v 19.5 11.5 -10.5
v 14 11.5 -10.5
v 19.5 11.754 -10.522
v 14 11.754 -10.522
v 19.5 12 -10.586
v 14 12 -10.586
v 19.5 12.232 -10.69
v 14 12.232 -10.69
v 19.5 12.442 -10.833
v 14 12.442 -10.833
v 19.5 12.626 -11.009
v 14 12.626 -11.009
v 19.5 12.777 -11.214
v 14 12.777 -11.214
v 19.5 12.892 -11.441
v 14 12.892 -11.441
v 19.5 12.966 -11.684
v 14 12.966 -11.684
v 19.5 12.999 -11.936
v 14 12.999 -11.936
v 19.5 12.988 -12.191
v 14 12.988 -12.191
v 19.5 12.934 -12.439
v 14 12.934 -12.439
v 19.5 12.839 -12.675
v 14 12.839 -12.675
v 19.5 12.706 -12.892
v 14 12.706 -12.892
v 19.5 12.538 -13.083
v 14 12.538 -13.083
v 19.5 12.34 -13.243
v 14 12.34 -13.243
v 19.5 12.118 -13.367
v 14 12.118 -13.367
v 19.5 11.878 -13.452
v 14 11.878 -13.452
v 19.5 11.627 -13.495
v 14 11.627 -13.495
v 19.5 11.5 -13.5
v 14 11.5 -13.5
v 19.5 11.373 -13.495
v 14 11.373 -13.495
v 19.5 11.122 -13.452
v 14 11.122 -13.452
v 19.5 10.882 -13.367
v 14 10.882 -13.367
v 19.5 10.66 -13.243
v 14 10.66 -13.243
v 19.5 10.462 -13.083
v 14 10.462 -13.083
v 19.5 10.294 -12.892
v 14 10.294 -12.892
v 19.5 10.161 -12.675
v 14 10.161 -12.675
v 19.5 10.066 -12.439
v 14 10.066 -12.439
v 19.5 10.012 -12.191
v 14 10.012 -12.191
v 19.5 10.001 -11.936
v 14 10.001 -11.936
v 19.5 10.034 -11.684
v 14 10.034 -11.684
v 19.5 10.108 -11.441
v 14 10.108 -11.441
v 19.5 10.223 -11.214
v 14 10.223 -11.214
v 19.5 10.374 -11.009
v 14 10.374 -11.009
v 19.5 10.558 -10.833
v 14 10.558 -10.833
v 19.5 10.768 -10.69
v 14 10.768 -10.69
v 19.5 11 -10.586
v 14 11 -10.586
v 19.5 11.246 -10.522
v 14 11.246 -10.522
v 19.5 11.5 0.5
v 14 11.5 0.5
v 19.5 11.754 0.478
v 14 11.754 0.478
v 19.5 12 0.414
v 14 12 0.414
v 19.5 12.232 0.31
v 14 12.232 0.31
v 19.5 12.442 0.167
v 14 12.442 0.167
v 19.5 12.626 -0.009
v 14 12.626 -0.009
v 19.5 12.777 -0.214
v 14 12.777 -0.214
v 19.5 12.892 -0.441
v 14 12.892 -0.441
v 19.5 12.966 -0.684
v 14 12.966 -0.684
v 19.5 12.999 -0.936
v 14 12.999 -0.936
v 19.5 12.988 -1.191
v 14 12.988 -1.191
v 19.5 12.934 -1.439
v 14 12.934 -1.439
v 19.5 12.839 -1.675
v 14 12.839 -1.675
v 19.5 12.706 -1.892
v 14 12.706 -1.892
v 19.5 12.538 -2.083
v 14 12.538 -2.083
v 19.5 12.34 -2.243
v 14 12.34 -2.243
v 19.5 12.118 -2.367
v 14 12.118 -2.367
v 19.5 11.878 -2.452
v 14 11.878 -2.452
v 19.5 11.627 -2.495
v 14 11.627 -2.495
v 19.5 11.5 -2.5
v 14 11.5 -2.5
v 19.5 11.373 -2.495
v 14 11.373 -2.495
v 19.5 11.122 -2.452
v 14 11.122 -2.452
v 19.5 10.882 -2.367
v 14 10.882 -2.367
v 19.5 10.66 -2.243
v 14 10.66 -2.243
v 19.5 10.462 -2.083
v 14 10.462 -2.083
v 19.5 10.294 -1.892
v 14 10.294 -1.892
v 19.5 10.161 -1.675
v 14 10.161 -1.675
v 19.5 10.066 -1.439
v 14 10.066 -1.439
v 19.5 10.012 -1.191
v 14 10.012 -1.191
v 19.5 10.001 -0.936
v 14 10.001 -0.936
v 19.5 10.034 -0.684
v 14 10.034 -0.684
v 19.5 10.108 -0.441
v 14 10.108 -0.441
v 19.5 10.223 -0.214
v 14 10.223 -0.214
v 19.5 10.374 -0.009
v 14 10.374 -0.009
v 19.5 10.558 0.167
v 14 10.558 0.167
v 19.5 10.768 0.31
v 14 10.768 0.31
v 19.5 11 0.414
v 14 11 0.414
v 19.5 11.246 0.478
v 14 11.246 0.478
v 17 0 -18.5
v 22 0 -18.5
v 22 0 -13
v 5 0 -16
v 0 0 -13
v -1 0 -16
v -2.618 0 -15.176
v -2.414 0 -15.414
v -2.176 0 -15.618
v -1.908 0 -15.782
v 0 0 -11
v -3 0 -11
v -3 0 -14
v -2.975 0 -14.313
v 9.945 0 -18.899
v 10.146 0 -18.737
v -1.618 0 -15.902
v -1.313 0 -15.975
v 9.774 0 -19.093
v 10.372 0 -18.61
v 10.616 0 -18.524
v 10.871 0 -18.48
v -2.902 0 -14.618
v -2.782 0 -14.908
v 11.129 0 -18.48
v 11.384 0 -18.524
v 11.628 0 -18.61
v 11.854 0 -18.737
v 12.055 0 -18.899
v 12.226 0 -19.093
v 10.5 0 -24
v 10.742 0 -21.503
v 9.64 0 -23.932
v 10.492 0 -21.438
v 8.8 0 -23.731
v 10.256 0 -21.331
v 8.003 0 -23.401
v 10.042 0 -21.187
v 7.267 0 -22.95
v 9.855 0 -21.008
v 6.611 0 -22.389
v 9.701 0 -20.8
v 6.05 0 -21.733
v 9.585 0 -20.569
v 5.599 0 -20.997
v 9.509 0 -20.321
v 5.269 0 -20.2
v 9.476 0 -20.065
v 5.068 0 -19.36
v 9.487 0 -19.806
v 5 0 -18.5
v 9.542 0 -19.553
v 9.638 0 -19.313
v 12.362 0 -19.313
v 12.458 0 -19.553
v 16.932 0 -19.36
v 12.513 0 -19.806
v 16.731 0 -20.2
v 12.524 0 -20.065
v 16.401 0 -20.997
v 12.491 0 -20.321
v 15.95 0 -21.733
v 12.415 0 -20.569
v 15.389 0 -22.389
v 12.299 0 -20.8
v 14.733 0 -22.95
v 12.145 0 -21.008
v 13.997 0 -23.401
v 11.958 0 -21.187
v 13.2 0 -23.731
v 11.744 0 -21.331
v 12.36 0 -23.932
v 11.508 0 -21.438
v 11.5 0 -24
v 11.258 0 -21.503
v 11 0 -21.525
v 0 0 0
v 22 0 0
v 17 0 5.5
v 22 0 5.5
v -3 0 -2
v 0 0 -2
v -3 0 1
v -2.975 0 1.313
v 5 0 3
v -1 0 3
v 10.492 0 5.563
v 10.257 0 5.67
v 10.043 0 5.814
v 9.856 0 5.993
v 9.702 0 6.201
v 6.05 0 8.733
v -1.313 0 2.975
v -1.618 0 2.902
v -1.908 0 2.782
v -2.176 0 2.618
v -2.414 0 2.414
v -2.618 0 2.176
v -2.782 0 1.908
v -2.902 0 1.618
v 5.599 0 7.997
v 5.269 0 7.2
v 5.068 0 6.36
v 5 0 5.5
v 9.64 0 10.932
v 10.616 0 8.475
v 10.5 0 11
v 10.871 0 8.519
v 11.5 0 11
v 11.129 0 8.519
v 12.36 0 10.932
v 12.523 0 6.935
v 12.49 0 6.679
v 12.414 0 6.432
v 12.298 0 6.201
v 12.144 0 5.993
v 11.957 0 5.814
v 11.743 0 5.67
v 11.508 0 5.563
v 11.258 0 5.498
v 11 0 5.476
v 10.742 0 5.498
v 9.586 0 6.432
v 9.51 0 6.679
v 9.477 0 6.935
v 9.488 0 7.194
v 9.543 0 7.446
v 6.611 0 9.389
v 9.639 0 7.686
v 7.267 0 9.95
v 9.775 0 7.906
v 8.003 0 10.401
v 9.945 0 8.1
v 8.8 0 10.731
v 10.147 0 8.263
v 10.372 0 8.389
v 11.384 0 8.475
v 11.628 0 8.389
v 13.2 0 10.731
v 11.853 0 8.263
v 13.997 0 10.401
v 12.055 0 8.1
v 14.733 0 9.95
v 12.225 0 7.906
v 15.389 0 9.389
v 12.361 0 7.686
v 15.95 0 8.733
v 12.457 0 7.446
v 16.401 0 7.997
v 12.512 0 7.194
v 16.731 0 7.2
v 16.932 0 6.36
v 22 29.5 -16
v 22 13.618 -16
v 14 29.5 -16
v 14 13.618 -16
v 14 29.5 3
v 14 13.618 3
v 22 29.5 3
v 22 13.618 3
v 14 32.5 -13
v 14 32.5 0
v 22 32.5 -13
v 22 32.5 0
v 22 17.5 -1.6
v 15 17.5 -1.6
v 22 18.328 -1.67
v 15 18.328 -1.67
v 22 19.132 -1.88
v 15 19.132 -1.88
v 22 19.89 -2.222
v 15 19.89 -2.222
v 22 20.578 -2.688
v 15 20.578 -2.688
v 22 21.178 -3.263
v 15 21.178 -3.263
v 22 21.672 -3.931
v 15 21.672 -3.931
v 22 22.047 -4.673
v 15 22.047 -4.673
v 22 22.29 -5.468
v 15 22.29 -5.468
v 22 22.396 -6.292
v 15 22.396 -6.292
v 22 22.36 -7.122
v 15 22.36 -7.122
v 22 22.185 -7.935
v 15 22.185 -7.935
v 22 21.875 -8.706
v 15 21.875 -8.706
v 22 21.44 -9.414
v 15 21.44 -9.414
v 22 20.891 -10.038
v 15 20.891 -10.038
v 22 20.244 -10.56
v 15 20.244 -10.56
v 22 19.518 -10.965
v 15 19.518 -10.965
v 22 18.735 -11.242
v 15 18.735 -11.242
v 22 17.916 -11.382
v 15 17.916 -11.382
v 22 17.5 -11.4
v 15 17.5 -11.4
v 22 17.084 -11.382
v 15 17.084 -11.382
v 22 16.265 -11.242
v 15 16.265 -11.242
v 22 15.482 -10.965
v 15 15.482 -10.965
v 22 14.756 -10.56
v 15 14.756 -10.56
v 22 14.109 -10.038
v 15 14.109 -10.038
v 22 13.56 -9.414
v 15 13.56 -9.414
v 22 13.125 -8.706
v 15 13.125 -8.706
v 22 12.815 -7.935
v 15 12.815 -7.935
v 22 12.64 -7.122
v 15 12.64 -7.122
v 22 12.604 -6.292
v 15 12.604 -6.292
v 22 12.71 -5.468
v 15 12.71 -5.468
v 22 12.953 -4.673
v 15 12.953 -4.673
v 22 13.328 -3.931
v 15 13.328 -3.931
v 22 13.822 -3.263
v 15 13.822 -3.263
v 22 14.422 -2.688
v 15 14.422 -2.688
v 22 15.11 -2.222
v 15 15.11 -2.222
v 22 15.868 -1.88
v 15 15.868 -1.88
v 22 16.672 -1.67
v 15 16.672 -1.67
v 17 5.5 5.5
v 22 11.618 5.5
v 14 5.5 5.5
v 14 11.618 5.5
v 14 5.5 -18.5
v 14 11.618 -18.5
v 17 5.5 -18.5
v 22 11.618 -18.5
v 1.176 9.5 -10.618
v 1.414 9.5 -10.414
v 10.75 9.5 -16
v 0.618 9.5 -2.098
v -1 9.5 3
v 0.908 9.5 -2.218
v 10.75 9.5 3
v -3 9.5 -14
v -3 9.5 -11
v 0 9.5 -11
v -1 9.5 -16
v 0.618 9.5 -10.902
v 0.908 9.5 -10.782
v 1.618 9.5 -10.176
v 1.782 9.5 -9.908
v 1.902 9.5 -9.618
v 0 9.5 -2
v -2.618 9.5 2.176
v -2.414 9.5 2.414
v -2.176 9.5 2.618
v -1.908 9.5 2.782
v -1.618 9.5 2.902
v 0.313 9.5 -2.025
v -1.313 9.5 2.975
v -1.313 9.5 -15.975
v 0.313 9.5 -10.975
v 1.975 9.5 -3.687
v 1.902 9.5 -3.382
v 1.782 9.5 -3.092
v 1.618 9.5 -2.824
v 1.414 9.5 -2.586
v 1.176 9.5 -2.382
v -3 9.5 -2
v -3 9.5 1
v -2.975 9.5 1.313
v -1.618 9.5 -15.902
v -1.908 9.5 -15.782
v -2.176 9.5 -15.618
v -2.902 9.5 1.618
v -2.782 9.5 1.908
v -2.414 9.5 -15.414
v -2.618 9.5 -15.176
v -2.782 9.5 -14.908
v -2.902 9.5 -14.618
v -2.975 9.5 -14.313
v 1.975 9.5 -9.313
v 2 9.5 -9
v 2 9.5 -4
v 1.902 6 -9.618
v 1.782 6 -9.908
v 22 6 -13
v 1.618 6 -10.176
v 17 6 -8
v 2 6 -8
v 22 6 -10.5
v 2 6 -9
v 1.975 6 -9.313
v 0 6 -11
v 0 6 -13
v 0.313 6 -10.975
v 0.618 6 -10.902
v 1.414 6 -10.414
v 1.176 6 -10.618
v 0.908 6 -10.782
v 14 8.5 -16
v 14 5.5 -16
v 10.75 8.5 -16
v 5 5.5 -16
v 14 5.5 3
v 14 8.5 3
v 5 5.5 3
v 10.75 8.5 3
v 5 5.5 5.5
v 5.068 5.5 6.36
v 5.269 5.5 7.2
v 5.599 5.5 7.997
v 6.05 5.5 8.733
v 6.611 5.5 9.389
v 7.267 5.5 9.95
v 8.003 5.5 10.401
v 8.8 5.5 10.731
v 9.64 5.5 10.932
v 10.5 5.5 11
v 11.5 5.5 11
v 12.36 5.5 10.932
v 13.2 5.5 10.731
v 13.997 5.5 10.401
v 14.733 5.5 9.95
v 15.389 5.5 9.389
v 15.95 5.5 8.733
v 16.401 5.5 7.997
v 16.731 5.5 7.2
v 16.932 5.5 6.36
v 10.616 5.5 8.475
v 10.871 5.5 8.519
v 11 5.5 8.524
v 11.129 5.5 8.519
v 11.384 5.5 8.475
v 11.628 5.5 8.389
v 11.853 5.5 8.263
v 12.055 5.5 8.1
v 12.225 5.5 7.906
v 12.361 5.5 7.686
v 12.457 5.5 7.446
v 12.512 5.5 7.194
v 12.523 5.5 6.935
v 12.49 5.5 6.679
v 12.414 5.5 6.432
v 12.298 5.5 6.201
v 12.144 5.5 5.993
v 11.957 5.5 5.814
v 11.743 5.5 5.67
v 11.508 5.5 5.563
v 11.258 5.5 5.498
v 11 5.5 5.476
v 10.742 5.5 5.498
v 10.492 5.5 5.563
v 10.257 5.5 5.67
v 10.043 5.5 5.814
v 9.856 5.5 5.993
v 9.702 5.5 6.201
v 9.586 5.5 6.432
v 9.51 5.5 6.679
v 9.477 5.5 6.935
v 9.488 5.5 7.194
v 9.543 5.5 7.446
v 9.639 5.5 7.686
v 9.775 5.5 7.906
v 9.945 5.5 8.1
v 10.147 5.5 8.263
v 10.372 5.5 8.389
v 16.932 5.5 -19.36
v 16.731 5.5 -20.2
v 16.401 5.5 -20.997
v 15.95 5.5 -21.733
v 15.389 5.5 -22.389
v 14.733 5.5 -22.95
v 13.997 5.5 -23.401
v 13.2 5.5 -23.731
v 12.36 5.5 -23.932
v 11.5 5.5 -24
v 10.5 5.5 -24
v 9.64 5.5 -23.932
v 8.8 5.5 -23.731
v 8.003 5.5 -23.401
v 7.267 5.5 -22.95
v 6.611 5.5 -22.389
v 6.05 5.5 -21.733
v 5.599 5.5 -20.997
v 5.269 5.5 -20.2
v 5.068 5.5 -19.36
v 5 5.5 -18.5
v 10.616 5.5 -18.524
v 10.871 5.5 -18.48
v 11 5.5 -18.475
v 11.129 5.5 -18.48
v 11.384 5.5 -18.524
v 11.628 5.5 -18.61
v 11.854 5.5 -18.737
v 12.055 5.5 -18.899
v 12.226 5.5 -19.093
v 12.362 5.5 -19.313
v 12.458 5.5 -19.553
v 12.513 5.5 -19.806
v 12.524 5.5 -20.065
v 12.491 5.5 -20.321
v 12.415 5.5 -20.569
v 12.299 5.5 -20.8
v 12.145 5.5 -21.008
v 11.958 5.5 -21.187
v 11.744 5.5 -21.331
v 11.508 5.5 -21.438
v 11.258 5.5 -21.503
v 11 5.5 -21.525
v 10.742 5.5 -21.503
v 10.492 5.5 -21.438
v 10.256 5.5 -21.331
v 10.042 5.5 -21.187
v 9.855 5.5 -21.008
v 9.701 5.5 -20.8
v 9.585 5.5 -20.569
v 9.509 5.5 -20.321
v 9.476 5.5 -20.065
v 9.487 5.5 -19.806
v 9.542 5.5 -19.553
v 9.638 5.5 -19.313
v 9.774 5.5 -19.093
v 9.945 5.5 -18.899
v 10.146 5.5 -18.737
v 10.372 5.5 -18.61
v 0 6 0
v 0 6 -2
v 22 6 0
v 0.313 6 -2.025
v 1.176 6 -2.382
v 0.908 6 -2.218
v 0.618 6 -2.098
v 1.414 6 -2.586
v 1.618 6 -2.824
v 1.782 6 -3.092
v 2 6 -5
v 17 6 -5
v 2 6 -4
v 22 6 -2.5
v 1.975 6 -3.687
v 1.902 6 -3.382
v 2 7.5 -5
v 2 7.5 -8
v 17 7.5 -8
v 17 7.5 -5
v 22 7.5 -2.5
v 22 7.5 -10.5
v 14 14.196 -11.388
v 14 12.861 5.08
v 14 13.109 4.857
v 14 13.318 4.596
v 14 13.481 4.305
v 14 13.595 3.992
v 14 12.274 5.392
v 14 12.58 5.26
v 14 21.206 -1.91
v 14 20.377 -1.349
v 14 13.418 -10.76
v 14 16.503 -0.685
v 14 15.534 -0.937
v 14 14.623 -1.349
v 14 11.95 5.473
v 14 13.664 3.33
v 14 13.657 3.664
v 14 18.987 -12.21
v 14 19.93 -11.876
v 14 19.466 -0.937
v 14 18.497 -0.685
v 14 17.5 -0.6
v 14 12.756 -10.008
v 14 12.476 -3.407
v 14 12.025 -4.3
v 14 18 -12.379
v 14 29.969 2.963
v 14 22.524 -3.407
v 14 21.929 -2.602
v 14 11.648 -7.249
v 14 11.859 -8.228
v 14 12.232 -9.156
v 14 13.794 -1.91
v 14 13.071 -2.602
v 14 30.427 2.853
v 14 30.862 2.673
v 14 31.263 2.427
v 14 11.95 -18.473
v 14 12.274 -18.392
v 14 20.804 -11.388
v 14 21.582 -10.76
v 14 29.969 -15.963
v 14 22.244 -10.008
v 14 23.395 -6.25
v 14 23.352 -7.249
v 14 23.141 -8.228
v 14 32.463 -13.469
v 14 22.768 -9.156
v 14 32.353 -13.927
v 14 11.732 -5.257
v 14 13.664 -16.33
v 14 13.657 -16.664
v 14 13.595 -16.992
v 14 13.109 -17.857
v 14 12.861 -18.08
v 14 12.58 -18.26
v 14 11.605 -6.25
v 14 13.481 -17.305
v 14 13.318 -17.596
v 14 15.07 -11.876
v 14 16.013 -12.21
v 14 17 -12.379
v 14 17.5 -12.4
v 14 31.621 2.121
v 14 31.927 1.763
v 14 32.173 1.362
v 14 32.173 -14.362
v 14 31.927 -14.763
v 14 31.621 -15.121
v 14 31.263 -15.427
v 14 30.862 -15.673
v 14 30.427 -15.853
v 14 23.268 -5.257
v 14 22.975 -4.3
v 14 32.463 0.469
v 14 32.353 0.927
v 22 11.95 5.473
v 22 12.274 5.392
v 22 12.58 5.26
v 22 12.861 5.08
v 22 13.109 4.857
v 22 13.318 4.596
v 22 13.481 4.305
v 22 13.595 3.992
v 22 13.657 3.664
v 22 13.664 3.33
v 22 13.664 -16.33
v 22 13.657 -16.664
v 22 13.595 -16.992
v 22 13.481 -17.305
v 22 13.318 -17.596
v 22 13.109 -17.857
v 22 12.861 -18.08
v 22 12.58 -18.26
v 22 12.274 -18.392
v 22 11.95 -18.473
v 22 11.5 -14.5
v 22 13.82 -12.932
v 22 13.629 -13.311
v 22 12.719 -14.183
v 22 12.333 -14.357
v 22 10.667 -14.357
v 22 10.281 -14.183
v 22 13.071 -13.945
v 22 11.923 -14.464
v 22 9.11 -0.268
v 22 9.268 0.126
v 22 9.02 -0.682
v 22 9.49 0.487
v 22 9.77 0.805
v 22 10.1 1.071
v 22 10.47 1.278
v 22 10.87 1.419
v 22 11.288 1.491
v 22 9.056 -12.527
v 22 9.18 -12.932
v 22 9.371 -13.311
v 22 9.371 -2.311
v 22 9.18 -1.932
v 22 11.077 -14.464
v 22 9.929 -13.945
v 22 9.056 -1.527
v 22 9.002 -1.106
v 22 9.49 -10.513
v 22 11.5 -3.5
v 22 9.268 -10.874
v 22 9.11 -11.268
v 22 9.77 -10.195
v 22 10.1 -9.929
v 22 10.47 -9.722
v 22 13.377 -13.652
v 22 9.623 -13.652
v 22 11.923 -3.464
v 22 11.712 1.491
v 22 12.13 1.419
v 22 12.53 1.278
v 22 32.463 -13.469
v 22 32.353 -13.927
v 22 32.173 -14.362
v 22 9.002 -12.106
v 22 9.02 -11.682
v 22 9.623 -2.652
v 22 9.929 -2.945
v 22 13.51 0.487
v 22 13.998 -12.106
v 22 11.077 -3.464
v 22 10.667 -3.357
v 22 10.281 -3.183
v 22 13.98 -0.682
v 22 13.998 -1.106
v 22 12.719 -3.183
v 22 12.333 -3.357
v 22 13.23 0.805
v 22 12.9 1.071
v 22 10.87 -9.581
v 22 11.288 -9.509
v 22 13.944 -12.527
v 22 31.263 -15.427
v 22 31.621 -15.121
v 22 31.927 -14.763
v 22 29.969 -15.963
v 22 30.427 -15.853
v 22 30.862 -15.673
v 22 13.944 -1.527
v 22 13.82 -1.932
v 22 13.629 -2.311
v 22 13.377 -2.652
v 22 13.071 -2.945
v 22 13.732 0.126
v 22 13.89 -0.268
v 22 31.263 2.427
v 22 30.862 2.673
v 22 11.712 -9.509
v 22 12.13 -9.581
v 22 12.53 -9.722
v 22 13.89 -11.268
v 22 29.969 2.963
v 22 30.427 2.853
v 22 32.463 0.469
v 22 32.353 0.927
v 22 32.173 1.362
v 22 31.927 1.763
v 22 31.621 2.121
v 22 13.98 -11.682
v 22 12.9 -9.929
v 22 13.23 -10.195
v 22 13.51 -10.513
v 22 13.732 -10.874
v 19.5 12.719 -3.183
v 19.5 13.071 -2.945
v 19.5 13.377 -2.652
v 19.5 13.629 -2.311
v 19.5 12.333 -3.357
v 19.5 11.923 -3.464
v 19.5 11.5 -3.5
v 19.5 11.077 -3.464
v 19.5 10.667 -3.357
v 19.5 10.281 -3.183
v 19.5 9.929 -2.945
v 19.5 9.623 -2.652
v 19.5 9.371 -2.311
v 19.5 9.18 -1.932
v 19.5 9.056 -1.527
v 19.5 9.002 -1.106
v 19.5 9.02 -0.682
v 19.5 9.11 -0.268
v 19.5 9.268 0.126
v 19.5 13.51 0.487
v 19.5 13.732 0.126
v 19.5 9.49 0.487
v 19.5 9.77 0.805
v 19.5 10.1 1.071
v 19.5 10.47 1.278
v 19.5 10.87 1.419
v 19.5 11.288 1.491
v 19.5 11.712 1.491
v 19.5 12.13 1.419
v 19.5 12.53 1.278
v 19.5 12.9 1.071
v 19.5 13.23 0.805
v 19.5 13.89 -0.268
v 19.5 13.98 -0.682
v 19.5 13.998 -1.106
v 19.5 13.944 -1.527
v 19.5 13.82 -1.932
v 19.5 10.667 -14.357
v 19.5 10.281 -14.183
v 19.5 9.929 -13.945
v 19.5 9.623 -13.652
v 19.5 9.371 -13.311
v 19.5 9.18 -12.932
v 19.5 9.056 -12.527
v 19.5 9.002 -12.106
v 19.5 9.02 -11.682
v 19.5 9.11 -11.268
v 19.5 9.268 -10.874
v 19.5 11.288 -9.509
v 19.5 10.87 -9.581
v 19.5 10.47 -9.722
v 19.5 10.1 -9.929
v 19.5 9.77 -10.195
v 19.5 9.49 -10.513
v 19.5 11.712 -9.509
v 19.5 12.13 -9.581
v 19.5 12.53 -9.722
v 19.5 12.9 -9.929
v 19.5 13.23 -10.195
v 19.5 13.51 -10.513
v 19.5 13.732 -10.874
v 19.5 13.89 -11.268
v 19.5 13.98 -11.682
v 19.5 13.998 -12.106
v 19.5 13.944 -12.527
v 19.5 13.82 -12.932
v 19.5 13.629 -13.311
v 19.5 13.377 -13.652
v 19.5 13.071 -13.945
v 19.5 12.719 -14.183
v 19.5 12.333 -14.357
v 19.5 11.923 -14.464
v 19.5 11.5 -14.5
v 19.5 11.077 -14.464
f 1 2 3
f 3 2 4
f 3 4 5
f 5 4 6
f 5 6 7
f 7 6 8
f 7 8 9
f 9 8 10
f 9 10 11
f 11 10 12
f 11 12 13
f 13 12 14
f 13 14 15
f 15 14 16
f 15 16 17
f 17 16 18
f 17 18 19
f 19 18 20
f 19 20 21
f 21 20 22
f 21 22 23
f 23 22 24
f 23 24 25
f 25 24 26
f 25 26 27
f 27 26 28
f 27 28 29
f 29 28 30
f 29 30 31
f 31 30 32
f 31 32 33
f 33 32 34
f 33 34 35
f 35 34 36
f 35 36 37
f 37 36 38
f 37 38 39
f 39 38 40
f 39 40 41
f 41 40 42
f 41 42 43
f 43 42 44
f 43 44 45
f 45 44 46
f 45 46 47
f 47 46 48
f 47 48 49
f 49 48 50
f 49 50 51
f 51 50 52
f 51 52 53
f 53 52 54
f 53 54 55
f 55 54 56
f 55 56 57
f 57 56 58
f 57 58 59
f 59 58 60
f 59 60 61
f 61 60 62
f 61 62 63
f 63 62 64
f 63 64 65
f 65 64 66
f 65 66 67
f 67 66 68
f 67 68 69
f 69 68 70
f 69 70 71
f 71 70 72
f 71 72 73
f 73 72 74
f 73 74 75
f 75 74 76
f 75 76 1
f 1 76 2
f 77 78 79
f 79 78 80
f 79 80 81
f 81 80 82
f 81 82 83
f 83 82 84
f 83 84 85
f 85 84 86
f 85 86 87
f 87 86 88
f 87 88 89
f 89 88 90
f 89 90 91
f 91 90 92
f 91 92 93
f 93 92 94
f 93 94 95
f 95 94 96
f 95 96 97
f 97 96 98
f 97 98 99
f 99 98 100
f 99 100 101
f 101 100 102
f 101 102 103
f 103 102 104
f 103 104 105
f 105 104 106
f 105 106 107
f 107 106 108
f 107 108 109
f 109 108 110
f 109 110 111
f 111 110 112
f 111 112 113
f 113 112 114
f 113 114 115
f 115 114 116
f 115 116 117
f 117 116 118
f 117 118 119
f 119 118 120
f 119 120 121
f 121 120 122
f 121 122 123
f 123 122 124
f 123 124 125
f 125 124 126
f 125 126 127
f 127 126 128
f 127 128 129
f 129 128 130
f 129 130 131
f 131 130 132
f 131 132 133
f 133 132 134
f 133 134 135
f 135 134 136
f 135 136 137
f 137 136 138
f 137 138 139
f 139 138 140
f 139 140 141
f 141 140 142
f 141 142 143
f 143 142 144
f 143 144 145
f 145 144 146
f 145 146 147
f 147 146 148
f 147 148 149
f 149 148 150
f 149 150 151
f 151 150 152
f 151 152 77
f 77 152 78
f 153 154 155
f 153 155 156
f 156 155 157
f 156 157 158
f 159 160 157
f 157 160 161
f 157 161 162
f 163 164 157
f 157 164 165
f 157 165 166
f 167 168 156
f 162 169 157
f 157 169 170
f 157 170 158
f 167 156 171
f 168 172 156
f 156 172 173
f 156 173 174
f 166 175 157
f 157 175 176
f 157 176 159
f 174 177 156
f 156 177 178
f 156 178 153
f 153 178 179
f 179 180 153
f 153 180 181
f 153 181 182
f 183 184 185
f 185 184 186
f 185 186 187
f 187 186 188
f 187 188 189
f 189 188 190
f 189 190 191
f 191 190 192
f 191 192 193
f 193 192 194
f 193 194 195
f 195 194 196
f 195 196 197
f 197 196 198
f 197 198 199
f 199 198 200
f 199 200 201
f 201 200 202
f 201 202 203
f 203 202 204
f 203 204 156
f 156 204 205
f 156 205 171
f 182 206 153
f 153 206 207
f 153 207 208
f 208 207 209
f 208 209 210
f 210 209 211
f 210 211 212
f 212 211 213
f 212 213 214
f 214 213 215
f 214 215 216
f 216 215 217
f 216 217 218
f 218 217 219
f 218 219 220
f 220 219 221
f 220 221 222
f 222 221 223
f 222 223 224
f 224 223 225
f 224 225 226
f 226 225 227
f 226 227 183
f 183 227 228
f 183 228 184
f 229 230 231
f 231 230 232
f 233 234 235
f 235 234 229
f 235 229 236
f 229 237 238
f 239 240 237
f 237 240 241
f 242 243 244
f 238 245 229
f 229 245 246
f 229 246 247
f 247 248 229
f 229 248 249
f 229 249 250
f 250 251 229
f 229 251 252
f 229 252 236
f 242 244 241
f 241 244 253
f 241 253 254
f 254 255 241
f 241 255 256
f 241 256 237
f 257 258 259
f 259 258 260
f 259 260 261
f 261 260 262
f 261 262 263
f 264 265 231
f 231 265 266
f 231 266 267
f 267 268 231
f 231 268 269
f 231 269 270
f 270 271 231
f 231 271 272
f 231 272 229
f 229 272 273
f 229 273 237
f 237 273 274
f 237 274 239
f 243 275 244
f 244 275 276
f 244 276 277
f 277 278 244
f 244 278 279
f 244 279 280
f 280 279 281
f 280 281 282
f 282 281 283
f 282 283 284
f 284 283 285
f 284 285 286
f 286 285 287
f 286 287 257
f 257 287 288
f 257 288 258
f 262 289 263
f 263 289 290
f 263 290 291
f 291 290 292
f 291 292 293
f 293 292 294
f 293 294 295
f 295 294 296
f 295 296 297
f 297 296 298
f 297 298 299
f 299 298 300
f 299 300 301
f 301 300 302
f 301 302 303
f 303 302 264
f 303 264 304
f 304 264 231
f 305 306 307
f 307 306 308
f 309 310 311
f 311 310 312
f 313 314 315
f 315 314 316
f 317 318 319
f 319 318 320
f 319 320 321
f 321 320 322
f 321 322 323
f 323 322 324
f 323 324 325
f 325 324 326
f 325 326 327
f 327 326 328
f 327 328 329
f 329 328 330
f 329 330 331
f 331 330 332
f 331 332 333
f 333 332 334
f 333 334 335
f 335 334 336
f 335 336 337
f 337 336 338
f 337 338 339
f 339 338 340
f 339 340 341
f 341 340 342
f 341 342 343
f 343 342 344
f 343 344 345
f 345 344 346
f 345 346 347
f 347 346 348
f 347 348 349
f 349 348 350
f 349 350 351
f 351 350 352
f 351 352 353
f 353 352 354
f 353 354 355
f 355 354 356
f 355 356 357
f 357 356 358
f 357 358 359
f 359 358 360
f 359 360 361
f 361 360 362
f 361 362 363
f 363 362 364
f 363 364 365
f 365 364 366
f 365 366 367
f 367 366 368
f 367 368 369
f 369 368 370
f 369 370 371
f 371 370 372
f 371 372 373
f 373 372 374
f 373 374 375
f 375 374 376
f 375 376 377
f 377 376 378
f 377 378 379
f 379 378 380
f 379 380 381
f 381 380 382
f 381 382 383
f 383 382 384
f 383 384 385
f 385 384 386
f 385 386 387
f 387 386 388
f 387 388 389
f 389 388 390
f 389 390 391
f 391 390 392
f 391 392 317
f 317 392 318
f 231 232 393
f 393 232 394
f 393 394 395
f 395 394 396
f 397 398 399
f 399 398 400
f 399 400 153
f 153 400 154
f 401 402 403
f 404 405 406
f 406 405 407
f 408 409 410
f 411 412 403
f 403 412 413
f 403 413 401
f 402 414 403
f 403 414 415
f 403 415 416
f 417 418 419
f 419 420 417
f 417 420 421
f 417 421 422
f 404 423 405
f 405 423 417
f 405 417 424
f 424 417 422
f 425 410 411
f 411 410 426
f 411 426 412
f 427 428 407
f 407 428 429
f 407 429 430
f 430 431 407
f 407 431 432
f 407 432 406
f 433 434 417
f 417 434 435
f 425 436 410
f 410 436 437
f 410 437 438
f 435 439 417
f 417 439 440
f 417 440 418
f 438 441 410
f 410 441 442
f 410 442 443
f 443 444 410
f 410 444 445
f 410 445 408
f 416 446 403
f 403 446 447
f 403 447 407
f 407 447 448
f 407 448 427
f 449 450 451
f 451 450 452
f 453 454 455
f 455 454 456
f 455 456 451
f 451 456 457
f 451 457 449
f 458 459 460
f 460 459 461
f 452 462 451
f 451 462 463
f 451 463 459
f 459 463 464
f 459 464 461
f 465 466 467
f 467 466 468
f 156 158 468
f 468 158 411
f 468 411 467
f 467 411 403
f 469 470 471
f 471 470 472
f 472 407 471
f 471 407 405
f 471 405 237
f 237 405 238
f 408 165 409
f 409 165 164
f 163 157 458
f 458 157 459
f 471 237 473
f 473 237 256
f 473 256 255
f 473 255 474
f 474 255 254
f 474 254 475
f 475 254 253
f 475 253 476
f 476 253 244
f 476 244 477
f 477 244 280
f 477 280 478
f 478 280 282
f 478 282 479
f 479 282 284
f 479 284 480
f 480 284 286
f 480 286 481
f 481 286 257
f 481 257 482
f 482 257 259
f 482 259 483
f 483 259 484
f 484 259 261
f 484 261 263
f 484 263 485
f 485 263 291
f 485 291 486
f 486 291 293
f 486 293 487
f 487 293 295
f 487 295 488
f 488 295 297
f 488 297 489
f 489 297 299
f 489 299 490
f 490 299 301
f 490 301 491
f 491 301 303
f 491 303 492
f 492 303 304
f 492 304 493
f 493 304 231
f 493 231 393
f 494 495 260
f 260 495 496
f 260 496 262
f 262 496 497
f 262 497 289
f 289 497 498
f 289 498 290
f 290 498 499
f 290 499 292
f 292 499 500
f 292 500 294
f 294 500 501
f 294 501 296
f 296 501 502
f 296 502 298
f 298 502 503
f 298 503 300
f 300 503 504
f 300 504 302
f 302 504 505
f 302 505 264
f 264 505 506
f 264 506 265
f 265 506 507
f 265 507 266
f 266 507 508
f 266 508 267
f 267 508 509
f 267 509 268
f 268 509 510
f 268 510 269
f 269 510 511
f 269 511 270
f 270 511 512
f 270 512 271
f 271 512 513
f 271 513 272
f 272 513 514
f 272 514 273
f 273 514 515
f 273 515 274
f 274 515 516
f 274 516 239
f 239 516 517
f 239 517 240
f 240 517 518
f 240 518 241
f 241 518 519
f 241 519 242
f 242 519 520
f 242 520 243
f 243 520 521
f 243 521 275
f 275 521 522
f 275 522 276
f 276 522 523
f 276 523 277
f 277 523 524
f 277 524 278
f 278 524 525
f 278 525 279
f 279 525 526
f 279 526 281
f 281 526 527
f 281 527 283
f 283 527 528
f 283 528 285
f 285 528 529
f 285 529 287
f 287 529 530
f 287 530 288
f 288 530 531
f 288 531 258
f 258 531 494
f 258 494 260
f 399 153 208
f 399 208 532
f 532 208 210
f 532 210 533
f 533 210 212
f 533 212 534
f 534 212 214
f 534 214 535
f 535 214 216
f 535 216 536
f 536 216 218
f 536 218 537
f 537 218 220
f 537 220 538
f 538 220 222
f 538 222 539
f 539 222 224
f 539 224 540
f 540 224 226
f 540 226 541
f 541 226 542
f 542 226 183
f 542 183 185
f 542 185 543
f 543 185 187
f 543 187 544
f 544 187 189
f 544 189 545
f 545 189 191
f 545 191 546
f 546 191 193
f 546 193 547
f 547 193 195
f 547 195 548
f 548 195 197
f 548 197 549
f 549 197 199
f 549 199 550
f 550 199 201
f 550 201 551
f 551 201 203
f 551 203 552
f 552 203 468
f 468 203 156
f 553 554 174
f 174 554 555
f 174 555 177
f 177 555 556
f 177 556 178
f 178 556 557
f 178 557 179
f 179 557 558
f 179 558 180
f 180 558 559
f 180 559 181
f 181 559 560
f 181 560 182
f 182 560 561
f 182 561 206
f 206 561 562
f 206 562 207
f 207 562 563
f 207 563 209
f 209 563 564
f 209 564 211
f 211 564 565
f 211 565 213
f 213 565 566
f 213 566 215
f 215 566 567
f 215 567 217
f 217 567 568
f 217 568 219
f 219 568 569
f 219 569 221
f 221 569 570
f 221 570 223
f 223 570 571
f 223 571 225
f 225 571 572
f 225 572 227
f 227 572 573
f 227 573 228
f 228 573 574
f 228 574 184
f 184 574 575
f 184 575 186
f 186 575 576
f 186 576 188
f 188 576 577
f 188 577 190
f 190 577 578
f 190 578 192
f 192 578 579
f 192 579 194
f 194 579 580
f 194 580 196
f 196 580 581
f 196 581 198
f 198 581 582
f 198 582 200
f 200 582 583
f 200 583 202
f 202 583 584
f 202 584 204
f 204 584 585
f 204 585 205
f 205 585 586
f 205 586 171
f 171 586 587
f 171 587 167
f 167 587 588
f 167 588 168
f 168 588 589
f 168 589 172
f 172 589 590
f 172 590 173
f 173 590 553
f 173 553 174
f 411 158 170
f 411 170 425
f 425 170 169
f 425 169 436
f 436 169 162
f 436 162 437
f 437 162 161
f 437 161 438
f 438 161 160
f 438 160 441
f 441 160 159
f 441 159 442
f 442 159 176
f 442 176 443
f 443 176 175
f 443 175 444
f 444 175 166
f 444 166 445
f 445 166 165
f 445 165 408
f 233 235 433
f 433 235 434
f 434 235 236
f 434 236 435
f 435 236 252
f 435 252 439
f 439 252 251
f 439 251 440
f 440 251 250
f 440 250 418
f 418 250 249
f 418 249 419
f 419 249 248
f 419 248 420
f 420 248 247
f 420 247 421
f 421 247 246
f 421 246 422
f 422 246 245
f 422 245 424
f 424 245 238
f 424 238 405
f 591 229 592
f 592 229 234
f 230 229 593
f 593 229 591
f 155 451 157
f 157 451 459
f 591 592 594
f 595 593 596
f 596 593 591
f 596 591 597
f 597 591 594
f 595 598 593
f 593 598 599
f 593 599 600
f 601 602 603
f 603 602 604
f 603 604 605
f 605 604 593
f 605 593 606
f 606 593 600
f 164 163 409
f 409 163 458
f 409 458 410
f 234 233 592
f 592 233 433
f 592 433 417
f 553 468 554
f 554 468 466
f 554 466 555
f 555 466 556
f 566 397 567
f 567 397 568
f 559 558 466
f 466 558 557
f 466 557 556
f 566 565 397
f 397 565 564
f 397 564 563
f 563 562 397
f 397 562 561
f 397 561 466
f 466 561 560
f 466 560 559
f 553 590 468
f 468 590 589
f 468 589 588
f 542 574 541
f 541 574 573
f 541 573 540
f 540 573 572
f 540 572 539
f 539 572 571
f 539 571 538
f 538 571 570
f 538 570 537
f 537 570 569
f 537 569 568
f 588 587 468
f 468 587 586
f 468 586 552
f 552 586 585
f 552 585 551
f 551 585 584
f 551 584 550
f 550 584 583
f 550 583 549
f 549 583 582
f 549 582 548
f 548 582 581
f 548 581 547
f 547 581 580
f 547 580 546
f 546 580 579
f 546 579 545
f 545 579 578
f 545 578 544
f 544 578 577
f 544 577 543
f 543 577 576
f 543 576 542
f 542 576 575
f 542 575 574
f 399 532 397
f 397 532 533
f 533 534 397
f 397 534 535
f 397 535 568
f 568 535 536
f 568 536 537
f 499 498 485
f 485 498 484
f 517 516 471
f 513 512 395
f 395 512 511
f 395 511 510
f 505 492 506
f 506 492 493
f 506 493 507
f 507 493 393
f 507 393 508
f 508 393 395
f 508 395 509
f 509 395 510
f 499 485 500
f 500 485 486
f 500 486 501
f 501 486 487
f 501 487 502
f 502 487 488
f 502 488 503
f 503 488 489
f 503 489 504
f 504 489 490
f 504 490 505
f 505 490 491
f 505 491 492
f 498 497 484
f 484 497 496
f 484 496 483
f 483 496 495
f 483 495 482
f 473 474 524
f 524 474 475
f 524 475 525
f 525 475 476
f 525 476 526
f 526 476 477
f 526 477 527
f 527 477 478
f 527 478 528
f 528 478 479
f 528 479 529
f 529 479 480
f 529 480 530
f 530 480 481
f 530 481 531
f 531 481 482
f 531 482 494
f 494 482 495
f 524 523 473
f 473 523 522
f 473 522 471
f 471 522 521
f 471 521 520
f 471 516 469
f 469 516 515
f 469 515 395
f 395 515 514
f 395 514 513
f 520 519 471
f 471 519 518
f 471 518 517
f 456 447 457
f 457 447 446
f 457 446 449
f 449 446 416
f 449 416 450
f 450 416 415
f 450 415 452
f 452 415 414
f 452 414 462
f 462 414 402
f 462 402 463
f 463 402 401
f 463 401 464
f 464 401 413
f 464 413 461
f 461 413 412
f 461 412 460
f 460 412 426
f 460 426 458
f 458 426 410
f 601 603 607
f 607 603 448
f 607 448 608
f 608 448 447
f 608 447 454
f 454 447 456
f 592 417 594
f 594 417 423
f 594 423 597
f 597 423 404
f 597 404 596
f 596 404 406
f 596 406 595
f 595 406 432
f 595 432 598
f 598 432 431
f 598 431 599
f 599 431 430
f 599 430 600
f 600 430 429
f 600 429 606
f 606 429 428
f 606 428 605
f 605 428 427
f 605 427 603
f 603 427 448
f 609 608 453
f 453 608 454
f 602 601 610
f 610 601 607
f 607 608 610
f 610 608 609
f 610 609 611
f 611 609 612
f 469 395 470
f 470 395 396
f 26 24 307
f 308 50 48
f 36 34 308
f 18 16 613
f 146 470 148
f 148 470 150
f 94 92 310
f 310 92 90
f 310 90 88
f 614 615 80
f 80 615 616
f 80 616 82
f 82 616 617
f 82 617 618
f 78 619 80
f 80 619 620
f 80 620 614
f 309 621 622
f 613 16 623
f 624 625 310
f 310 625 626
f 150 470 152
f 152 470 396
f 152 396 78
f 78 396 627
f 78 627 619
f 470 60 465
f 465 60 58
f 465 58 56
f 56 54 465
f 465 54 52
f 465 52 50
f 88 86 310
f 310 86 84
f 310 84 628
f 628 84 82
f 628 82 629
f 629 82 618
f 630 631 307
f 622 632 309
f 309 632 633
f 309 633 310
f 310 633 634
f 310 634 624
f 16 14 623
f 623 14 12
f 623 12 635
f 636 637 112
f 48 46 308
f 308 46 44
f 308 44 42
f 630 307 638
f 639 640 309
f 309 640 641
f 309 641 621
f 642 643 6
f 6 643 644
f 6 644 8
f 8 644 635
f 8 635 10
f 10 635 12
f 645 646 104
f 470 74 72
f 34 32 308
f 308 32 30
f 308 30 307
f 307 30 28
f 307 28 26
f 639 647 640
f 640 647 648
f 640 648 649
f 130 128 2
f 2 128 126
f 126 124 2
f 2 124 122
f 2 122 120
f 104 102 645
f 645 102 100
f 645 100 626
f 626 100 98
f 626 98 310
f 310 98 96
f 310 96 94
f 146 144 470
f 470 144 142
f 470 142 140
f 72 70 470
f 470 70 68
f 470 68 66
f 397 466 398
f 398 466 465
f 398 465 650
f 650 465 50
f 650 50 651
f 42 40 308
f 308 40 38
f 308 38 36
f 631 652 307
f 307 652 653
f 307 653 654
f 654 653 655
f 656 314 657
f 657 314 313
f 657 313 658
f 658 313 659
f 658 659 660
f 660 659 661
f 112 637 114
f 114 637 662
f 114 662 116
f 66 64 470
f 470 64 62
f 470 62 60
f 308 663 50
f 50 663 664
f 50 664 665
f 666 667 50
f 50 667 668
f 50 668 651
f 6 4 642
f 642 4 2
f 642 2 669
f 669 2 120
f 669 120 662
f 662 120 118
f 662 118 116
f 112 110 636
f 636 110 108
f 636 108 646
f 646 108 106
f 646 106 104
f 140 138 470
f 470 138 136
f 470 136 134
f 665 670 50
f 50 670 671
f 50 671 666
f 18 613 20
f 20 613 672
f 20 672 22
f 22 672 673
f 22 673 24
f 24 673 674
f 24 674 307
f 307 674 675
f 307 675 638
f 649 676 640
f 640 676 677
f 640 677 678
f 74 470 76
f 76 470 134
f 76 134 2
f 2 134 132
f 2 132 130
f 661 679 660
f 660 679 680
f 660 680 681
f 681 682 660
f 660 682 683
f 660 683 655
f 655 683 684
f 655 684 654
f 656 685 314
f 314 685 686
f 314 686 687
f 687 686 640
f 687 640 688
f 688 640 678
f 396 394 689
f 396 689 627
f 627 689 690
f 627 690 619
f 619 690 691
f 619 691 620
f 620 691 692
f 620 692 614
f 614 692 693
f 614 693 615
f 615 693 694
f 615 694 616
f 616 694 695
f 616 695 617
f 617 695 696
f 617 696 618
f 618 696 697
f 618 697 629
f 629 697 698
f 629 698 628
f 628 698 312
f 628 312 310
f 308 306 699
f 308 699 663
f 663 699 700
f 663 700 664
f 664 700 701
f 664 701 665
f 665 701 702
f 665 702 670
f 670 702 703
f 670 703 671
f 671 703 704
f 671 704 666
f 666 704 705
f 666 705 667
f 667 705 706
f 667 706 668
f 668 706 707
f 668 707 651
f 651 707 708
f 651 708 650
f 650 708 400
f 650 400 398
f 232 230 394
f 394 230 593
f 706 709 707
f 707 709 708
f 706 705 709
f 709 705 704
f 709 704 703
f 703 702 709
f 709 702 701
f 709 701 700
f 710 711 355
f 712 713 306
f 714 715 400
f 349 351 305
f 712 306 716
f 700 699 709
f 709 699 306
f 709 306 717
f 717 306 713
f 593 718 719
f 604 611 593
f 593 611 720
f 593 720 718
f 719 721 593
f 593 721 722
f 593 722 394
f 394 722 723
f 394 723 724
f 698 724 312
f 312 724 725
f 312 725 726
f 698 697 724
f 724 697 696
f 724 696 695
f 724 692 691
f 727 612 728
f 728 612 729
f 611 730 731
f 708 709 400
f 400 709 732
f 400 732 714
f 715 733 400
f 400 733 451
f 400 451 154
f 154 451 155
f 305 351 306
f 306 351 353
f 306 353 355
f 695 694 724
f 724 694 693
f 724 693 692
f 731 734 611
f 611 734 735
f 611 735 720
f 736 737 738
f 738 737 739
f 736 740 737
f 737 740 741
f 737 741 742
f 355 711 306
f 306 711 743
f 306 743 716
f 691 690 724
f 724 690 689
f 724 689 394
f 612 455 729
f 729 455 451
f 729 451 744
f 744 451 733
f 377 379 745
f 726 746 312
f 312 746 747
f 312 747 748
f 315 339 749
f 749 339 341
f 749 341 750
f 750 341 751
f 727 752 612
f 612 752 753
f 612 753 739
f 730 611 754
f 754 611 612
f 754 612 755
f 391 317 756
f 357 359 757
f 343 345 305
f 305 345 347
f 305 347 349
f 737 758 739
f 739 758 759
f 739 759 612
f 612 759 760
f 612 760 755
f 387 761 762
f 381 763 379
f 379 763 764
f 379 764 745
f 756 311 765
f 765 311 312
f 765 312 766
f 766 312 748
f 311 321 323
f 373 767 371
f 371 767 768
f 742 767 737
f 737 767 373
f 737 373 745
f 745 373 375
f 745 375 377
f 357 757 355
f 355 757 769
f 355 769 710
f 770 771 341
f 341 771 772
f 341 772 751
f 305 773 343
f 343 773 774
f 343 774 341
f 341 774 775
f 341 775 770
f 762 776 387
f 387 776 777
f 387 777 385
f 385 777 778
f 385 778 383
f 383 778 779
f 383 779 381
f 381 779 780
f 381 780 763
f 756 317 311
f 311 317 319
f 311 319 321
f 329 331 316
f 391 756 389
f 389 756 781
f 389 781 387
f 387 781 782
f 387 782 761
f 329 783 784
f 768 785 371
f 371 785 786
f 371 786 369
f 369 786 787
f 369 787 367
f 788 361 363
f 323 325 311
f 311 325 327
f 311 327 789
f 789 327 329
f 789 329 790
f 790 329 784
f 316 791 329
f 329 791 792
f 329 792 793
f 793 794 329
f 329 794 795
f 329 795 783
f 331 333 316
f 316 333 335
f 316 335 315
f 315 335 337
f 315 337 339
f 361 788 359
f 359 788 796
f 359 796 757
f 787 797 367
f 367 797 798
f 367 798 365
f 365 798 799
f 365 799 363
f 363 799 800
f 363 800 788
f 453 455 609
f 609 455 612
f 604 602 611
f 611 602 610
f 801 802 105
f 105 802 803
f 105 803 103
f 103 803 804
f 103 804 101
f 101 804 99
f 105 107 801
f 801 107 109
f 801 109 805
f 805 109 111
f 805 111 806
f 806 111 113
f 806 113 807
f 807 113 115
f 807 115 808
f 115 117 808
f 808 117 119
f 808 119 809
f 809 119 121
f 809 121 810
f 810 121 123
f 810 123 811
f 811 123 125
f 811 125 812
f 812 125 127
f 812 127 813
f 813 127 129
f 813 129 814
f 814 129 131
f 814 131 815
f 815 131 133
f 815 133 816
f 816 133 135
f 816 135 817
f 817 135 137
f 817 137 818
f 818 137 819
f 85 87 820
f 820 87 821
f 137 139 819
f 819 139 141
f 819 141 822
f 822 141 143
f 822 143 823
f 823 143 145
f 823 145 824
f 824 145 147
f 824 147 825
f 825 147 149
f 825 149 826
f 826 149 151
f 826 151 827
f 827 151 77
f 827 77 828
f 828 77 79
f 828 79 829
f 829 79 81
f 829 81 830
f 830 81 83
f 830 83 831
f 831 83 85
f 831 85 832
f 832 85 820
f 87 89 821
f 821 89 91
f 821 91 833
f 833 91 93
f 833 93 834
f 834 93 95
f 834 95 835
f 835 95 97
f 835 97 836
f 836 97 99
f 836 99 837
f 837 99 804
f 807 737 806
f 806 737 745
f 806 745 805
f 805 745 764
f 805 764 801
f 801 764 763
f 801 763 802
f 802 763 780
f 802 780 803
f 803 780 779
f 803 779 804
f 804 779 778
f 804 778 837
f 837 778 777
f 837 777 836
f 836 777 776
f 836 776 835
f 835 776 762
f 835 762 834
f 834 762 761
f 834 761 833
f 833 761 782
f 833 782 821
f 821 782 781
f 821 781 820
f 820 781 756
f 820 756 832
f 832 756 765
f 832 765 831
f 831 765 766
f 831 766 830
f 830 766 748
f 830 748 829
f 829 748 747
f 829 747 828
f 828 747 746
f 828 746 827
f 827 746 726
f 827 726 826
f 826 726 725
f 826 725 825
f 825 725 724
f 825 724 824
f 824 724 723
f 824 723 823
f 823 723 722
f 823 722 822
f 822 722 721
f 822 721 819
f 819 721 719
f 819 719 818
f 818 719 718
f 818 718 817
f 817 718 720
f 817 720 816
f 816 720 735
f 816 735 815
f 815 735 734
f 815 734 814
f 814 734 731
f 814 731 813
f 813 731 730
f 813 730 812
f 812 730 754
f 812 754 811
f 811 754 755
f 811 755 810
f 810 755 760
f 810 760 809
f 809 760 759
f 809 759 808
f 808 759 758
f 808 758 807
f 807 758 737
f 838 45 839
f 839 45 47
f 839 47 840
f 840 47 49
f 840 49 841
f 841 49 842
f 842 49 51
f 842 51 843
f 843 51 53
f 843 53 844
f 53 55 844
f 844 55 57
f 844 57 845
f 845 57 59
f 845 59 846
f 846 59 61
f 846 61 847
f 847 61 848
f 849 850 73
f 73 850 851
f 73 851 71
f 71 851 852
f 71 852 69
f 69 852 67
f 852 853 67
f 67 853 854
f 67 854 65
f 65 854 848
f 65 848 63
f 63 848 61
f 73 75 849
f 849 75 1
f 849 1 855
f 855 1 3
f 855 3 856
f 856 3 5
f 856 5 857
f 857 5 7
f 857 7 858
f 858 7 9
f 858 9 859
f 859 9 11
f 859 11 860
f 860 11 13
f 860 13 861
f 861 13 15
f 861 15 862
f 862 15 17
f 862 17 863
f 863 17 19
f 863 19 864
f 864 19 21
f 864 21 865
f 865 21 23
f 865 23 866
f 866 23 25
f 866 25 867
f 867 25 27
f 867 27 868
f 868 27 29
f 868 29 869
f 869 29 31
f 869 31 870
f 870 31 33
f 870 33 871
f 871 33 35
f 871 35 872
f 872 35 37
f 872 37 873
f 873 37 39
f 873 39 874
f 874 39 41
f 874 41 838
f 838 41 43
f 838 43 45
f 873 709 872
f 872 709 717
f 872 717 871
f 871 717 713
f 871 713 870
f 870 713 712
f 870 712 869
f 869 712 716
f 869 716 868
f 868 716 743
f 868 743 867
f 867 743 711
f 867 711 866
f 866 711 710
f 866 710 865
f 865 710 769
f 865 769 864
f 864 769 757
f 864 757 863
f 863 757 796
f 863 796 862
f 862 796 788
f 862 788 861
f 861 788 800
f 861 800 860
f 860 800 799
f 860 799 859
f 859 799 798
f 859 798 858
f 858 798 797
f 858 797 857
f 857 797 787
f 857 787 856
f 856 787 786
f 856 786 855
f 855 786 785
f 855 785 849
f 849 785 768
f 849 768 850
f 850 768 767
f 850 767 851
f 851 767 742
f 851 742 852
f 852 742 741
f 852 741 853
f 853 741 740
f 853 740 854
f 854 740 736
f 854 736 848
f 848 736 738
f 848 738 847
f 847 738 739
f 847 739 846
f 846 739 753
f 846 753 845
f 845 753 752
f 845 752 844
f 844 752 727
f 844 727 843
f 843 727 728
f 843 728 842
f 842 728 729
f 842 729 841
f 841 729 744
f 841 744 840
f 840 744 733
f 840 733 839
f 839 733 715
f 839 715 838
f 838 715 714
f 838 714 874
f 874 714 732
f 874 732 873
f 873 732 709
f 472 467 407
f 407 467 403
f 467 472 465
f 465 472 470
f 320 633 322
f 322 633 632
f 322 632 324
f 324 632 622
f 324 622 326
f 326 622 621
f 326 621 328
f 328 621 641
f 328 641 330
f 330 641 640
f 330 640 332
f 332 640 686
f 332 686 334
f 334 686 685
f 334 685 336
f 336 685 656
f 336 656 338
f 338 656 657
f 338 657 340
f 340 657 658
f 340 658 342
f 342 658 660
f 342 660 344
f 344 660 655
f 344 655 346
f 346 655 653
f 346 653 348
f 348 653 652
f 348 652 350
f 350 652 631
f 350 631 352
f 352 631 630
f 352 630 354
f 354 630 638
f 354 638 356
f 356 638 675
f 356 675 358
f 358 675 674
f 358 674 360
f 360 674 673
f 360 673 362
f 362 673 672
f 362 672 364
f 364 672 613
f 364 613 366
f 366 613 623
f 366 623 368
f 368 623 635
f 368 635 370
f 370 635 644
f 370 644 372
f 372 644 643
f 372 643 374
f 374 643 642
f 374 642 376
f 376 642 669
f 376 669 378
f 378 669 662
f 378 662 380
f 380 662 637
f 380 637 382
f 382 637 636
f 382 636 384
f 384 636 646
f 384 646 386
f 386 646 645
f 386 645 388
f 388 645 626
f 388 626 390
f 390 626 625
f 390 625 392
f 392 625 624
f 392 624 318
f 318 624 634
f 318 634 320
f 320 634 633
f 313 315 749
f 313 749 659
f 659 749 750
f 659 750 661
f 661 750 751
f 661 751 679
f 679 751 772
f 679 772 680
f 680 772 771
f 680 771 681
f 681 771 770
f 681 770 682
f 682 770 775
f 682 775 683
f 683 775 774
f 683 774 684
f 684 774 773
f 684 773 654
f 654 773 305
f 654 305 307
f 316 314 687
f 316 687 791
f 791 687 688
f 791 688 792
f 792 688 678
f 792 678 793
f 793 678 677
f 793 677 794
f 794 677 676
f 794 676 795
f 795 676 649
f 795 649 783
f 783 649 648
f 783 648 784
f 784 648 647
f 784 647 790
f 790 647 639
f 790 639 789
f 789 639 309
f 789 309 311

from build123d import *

# Parameters (mm, degrees)
SKETCH1_W           = 22
SKETCH1_H           = 13
BOSS_EXTRUDE1_DEPTH = 6
BOSS_EXTRUDE2_DEPTH = 3.5
BOSS_EXTRUDE3_DEPTH = 9.5
SKETCH4_R           = 1.525
SKETCH4_R_2         = 1.524
CUT_EXTRUDE1_DEPTH  = 36.933967218
SKETCH5_W           = 9
SKETCH5_H           = 5.5
CUT_EXTRUDE2_DEPTH  = 39.082148049
FILLET1_R           = 2
SKETCH6_W           = 12
SKETCH6_H           = 13.009000019
SKETCH6_W_2         = 15.838286437
CUT_EXTRUDE3_DEPTH  = 4
BOSS_EXTRUDE4_DEPTH = 23
CUT_EXTRUDE4_DEPTH  = 23
SKETCH9_R           = 4.9
CUT_EXTRUDE6_DEPTH  = 23
SKETCH10_R          = 1.5
CUT_EXTRUDE7_DEPTH  = 23
BOSS_EXTRUDE5_DEPTH = 3
FILLET2_R           = 2.5
FILLET3_R           = 2.5
SKETCH12_W          = 20
SKETCH12_H          = 3
CUT_EXTRUDE8_DEPTH  = 1.5
BOSS_EXTRUDE6_DEPTH = 8
SKETCH15_R          = 4.9
SKETCH15_R_2        = 1.5
CUT_EXTRUDE9_DEPTH  = 48.51052515
SKETCH16_W          = 29.561254557
SKETCH16_H          = 40.782628596
CUT_EXTRUDE10_DEPTH = 3
SKETCH17_W          = 8
SKETCH17_H          = 5.5
BOSS_EXTRUDE7_DEPTH = 9.5
CUT_EXTRUDE11_DEPTH = 1.5
SKETCH20_R          = 2.5
CUT_EXTRUDE12_DEPTH = 2.5
SKETCH19_W          = 3.25
SKETCH19_H          = 19
CUT_EXTRUDE13_DEPTH = 1
CHAMFER1_SIZE       = 1
FILLET4_R           = 3


with BuildPart() as part:
    # Sketch1 → Boss-Extrude1 (new body)
    with BuildSketch(Plane(origin=(0, 0, 0), x_dir=(1, 0, 0), z_dir=(0, 1, 0))):
        with BuildLine():
            Line((-1, -3), (23, -3))
            Line((23, -3), (25, -3))
            Line((25, -3), (25, -1))
            Line((25, -1), (25, 14))
            Line((25, 14), (25, 16))
            Line((25, 16), (23, 16))
            Line((23, 16), (-1, 16))
            ThreePointArc((-1, 16), (-2.414213562, 15.414213562), (-3, 14))
            Line((-3, 14), (-3, -1))
            ThreePointArc((-3, -1), (-2.414213562, -2.414213562), (-1, -3))
        make_face()
        with Locations((11, 6.5)):
            Rectangle(SKETCH1_W, SKETCH1_H, mode=Mode.SUBTRACT)
    extrude(amount=BOSS_EXTRUDE1_DEPTH)

    # Sketch2 → Boss-Extrude2 (add)
    with BuildSketch(Plane(origin=(0, 6, 0), x_dir=(1, 0, 0), z_dir=(0, 1, 0))):
        with BuildLine():
            Line((25, 14), (25, -1))
            Line((25, -1), (25, -3))
            Line((25, -3), (23, -3))
            Line((23, -3), (-1, -3))
            ThreePointArc((-1, -3), (-2.414213562, -2.414213562), (-3, -1))
            Line((-3, -1), (-3, 14))
            ThreePointArc((-3, 14), (-2.414213562, 15.414213562), (-1, 16))
            Line((-1, 16), (23, 16))
            Line((23, 16), (25, 16))
            Line((25, 16), (25, 14))
        make_face()
    extrude(amount=BOSS_EXTRUDE2_DEPTH)

    # Sketch3 → Boss-Extrude3 (add)
    with BuildSketch(Plane.XZ):
        with BuildLine():
            Line((5, 3), (17, 3))
            Line((17, 3), (17, 5.5))
            ThreePointArc((17, 5.5), (15.389087297, 9.389087297), (11.5, 11))
            Line((11.5, 11), (10.5, 11))
            ThreePointArc((10.5, 11), (6.610912703, 9.389087297), (5, 5.5))
            Line((5, 5.5), (5, 3))
        make_face()
        with BuildLine():
            Line((17, -16), (5, -16))
            Line((5, -16), (5, -18.5))
            ThreePointArc((5, -18.5), (6.610912703, -22.389087297), (10.5, -24))
            Line((10.5, -24), (11.5, -24))
            ThreePointArc((11.5, -24), (15.389087297, -22.389087297), (17, -18.5))
            Line((17, -18.5), (17, -16))
        make_face()
    extrude(amount=-BOSS_EXTRUDE3_DEPTH)

    # Sketch4 → Cut-Extrude1 (cut, through all)
    with BuildSketch(Plane(origin=(0, 0, 0), x_dir=(-1, 0, 0), z_dir=(0, -1, 0))):
        with Locations(Location((-11, 20, 0), (0, 0, 90))):
            Circle(SKETCH4_R)
        with Locations(Location((-11, -7, 0), (0, 0, 90))):
            Circle(SKETCH4_R_2)
    extrude(amount=-CUT_EXTRUDE1_DEPTH, mode=Mode.SUBTRACT)

    # Sketch5 → Cut-Extrude2 (cut, through all)
    with BuildSketch(Plane(origin=(25, 0, 0), x_dir=(0, 0, -1), z_dir=(1, 0, 0))):
        with Locations((6.5, 2.75)):
            Rectangle(SKETCH5_W, SKETCH5_H)
    extrude(amount=-CUT_EXTRUDE2_DEPTH, mode=Mode.SUBTRACT)

    # Fillet1
    fillet1_edges = [part.edges().sort_by_distance(p)[0] for p in [
        (-1.5, 5.5, -11),
        (-1.5, 5.5, -2),
        (23.5, 5.5, -11),
        (23.5, 5.5, -2),
    ]]
    fillet(fillet1_edges, radius=FILLET1_R)

    # Sketch6 → Cut-Extrude3 (cut)
    with BuildSketch(Plane(origin=(0, 9.5, 0), x_dir=(1, 0, 0), z_dir=(0, 1, 0))):
        with Locations((11, 22.504500009)):
            Rectangle(SKETCH6_W, SKETCH6_H)
        with Locations((11.149066226, -9.50450001)):
            Rectangle(SKETCH6_W_2, SKETCH6_H)
    extrude(amount=-CUT_EXTRUDE3_DEPTH, mode=Mode.SUBTRACT)

    # Sketch7 → Boss-Extrude4 (add)
    with BuildSketch(Plane(origin=(0, 9.5, 0), x_dir=(1, 0, 0), z_dir=(0, 1, 0))):
        Polygon((23, 16), (22, 16), (22, -3), (23, -3), (25, -3), (25, -1), (25, 14), (25, 16), align=None)
    extrude(amount=BOSS_EXTRUDE4_DEPTH)

    # Sketch8 → Cut-Extrude4 (cut)
    with BuildSketch(Plane(origin=(0, 9.5, 0), x_dir=(1, 0, 0), z_dir=(0, 1, 0))):
        with BuildLine():
            Line((-3, 2), (0, 2))
            ThreePointArc((0, 2), (1.414213562, 2.585786438), (2, 4))
            Line((2, 4), (2, 9))
            ThreePointArc((2, 9), (1.414213562, 10.414213562), (0, 11))
            Line((0, 11), (-3, 11))
            Line((-3, 11), (-3, 2))
        make_face()
    extrude(amount=-CUT_EXTRUDE4_DEPTH, mode=Mode.SUBTRACT)

    # Sketch9 → Cut-Extrude6 (cut)
    with BuildSketch(Plane.ZY.offset(-22)):
        with Locations((-6.5, 17.5)):
            Circle(SKETCH9_R)
    extrude(amount=-CUT_EXTRUDE6_DEPTH, mode=Mode.SUBTRACT)

    # Sketch10 → Cut-Extrude7 (cut)
    with BuildSketch(Plane.ZY.offset(-22)):
        with Locations((-12, 11.5)):
            Circle(SKETCH10_R)
        with Locations((-1, 11.5)):
            Circle(SKETCH10_R)
    extrude(amount=-CUT_EXTRUDE7_DEPTH, mode=Mode.SUBTRACT)

    # Sketch11 → Boss-Extrude5 (add)
    with BuildSketch(Plane(origin=(25, 0, 0), x_dir=(0, 0, -1), z_dir=(1, 0, 0))):
        with BuildLine():
            Line((-3, 0), (-5.5, 0))
            Line((-5.5, 0), (-5.5, 11.617902622))
            ThreePointArc((-5.5, 11.617902622), (-4.914213562, 13.032116185), (-3.5, 13.617902622))
            Line((-3.5, 13.617902622), (-3, 13.617902622))
            Line((-3, 13.617902622), (-3, 0))
        make_face()
        with BuildLine():
            Line((16, 0), (18.5, 0))
            Line((18.5, 0), (18.5, 11.617902622))
            ThreePointArc((18.5, 11.617902622), (17.914213562, 13.032116185), (16.5, 13.617902622))
            Line((16.5, 13.617902622), (16, 13.617902622))
            Line((16, 13.617902622), (16, 0))
        make_face()
    extrude(amount=-BOSS_EXTRUDE5_DEPTH)

    # Fillet2
    fillet2_edges = [part.edges().sort_by_distance(p)[0] for p in [
        (22, 4.75, 3),
    ]]
    fillet(fillet2_edges, radius=FILLET2_R - 0.0001)  # a hair under: the kernel refuses the full size

    # Fillet3
    fillet3_edges = [part.edges().sort_by_distance(p)[0] for p in [
        (22, 4.75, -16),
    ]]
    fillet(fillet3_edges, radius=FILLET3_R - 0.0001)  # a hair under: the kernel refuses the full size

    # Sketch12 → Cut-Extrude8 (cut)
    with BuildSketch(Plane.XZ.offset(-6)):
        with Locations((12, -6.5)):
            Rectangle(SKETCH12_W, SKETCH12_H)
    extrude(amount=-CUT_EXTRUDE8_DEPTH, mode=Mode.SUBTRACT)

    # Sketch14 → Boss-Extrude6 (add)
    with BuildSketch(Plane.ZY.offset(-22)):
        with BuildLine():
            Line((-16, 32.5), (3, 32.5))
            Line((3, 32.5), (3, 13.617902622))
            ThreePointArc((3, 13.617902622), (4.730624847, 13.218683682), (5.5, 11.617902622))
            Line((5.5, 11.617902622), (5.5, 9.5))
            Line((5.5, 9.5), (3, 9.5))
            Line((3, 9.5), (-16, 9.5))
            Line((-16, 9.5), (-18.5, 9.5))
            Line((-18.5, 9.5), (-18.5, 11.617902622))
            ThreePointArc((-18.5, 11.617902622), (-17.730624847, 13.218683682), (-16, 13.617902622))
            Line((-16, 13.617902622), (-16, 32.5))
        make_face()
    extrude(amount=BOSS_EXTRUDE6_DEPTH)

    # Sketch15 → Cut-Extrude9 (cut, through all)
    with BuildSketch(Plane(origin=(22, 0, 0), x_dir=(0, 0, -1), z_dir=(1, 0, 0))):
        with Locations(Location((6.5, 17.5, 0), (0, 0, 180))):
            Circle(SKETCH15_R)
        with Locations(Location((1, 11.5, 0), (0, 0, 180))):
            Circle(SKETCH15_R_2)
        with Locations(Location((12, 11.5, 0), (0, 0, 180))):
            Circle(SKETCH15_R_2)
    extrude(amount=-CUT_EXTRUDE9_DEPTH, mode=Mode.SUBTRACT)

    # Sketch16 → Cut-Extrude10 (cut)
    with BuildSketch(Plane(origin=(25, 0, 0), x_dir=(0, 0, -1), z_dir=(1, 0, 0))):
        with Locations((4.352462689, 15.924842514)):
            Rectangle(SKETCH16_W, SKETCH16_H)
    extrude(amount=-CUT_EXTRUDE10_DEPTH, mode=Mode.SUBTRACT)

    # Sketch17 → Boss-Extrude7 (add)
    with BuildSketch(Plane.XZ):
        with Locations((18, -15.75)):
            Rectangle(SKETCH17_W, SKETCH17_H)
        with Locations((18, 2.75)):
            Rectangle(SKETCH17_W, SKETCH17_H)
    extrude(amount=-BOSS_EXTRUDE7_DEPTH)

    # Sketch18 → Cut-Extrude11 (cut)
    with BuildSketch(Plane(origin=(0, 6, 0), x_dir=(-1, 0, 0), z_dir=(0, -1, 0))):
        Polygon((-22, 2.5), (-17, 5), (-17, 8), (-22, 10.5), align=None)
    extrude(amount=-CUT_EXTRUDE11_DEPTH, mode=Mode.SUBTRACT)

    # Sketch20 → Cut-Extrude12 (cut)
    with BuildSketch(Plane(origin=(22, 0, 0), x_dir=(0, 0, -1), z_dir=(1, 0, 0))):
        with Locations((1, 11.5)):
            Circle(SKETCH20_R)
        with Locations((12, 11.5)):
            Circle(SKETCH20_R)
    extrude(amount=-CUT_EXTRUDE12_DEPTH, mode=Mode.SUBTRACT)

    # Sketch19 → Cut-Extrude13 (cut)
    with BuildSketch(Plane(origin=(0, 9.5, 0), x_dir=(1, 0, 0), z_dir=(0, 1, 0))):
        with Locations((12.375, 6.5)):
            Rectangle(SKETCH19_W, SKETCH19_H)
    extrude(amount=-CUT_EXTRUDE13_DEPTH, mode=Mode.SUBTRACT)

    # Chamfer1
    chamfer1_edges = [part.edges().sort_by_distance(p)[0] for p in [
        (14, 17.5, -11.4),
    ]]
    chamfer(chamfer1_edges, length=CHAMFER1_SIZE)

    # Fillet4
    fillet4_edges = [part.edges().sort_by_distance(p)[0] for p in [
        (18, 32.5, 3),
        (18, 32.5, -16),
    ]]
    fillet(fillet4_edges, radius=FILLET4_R)


solid = part.part
